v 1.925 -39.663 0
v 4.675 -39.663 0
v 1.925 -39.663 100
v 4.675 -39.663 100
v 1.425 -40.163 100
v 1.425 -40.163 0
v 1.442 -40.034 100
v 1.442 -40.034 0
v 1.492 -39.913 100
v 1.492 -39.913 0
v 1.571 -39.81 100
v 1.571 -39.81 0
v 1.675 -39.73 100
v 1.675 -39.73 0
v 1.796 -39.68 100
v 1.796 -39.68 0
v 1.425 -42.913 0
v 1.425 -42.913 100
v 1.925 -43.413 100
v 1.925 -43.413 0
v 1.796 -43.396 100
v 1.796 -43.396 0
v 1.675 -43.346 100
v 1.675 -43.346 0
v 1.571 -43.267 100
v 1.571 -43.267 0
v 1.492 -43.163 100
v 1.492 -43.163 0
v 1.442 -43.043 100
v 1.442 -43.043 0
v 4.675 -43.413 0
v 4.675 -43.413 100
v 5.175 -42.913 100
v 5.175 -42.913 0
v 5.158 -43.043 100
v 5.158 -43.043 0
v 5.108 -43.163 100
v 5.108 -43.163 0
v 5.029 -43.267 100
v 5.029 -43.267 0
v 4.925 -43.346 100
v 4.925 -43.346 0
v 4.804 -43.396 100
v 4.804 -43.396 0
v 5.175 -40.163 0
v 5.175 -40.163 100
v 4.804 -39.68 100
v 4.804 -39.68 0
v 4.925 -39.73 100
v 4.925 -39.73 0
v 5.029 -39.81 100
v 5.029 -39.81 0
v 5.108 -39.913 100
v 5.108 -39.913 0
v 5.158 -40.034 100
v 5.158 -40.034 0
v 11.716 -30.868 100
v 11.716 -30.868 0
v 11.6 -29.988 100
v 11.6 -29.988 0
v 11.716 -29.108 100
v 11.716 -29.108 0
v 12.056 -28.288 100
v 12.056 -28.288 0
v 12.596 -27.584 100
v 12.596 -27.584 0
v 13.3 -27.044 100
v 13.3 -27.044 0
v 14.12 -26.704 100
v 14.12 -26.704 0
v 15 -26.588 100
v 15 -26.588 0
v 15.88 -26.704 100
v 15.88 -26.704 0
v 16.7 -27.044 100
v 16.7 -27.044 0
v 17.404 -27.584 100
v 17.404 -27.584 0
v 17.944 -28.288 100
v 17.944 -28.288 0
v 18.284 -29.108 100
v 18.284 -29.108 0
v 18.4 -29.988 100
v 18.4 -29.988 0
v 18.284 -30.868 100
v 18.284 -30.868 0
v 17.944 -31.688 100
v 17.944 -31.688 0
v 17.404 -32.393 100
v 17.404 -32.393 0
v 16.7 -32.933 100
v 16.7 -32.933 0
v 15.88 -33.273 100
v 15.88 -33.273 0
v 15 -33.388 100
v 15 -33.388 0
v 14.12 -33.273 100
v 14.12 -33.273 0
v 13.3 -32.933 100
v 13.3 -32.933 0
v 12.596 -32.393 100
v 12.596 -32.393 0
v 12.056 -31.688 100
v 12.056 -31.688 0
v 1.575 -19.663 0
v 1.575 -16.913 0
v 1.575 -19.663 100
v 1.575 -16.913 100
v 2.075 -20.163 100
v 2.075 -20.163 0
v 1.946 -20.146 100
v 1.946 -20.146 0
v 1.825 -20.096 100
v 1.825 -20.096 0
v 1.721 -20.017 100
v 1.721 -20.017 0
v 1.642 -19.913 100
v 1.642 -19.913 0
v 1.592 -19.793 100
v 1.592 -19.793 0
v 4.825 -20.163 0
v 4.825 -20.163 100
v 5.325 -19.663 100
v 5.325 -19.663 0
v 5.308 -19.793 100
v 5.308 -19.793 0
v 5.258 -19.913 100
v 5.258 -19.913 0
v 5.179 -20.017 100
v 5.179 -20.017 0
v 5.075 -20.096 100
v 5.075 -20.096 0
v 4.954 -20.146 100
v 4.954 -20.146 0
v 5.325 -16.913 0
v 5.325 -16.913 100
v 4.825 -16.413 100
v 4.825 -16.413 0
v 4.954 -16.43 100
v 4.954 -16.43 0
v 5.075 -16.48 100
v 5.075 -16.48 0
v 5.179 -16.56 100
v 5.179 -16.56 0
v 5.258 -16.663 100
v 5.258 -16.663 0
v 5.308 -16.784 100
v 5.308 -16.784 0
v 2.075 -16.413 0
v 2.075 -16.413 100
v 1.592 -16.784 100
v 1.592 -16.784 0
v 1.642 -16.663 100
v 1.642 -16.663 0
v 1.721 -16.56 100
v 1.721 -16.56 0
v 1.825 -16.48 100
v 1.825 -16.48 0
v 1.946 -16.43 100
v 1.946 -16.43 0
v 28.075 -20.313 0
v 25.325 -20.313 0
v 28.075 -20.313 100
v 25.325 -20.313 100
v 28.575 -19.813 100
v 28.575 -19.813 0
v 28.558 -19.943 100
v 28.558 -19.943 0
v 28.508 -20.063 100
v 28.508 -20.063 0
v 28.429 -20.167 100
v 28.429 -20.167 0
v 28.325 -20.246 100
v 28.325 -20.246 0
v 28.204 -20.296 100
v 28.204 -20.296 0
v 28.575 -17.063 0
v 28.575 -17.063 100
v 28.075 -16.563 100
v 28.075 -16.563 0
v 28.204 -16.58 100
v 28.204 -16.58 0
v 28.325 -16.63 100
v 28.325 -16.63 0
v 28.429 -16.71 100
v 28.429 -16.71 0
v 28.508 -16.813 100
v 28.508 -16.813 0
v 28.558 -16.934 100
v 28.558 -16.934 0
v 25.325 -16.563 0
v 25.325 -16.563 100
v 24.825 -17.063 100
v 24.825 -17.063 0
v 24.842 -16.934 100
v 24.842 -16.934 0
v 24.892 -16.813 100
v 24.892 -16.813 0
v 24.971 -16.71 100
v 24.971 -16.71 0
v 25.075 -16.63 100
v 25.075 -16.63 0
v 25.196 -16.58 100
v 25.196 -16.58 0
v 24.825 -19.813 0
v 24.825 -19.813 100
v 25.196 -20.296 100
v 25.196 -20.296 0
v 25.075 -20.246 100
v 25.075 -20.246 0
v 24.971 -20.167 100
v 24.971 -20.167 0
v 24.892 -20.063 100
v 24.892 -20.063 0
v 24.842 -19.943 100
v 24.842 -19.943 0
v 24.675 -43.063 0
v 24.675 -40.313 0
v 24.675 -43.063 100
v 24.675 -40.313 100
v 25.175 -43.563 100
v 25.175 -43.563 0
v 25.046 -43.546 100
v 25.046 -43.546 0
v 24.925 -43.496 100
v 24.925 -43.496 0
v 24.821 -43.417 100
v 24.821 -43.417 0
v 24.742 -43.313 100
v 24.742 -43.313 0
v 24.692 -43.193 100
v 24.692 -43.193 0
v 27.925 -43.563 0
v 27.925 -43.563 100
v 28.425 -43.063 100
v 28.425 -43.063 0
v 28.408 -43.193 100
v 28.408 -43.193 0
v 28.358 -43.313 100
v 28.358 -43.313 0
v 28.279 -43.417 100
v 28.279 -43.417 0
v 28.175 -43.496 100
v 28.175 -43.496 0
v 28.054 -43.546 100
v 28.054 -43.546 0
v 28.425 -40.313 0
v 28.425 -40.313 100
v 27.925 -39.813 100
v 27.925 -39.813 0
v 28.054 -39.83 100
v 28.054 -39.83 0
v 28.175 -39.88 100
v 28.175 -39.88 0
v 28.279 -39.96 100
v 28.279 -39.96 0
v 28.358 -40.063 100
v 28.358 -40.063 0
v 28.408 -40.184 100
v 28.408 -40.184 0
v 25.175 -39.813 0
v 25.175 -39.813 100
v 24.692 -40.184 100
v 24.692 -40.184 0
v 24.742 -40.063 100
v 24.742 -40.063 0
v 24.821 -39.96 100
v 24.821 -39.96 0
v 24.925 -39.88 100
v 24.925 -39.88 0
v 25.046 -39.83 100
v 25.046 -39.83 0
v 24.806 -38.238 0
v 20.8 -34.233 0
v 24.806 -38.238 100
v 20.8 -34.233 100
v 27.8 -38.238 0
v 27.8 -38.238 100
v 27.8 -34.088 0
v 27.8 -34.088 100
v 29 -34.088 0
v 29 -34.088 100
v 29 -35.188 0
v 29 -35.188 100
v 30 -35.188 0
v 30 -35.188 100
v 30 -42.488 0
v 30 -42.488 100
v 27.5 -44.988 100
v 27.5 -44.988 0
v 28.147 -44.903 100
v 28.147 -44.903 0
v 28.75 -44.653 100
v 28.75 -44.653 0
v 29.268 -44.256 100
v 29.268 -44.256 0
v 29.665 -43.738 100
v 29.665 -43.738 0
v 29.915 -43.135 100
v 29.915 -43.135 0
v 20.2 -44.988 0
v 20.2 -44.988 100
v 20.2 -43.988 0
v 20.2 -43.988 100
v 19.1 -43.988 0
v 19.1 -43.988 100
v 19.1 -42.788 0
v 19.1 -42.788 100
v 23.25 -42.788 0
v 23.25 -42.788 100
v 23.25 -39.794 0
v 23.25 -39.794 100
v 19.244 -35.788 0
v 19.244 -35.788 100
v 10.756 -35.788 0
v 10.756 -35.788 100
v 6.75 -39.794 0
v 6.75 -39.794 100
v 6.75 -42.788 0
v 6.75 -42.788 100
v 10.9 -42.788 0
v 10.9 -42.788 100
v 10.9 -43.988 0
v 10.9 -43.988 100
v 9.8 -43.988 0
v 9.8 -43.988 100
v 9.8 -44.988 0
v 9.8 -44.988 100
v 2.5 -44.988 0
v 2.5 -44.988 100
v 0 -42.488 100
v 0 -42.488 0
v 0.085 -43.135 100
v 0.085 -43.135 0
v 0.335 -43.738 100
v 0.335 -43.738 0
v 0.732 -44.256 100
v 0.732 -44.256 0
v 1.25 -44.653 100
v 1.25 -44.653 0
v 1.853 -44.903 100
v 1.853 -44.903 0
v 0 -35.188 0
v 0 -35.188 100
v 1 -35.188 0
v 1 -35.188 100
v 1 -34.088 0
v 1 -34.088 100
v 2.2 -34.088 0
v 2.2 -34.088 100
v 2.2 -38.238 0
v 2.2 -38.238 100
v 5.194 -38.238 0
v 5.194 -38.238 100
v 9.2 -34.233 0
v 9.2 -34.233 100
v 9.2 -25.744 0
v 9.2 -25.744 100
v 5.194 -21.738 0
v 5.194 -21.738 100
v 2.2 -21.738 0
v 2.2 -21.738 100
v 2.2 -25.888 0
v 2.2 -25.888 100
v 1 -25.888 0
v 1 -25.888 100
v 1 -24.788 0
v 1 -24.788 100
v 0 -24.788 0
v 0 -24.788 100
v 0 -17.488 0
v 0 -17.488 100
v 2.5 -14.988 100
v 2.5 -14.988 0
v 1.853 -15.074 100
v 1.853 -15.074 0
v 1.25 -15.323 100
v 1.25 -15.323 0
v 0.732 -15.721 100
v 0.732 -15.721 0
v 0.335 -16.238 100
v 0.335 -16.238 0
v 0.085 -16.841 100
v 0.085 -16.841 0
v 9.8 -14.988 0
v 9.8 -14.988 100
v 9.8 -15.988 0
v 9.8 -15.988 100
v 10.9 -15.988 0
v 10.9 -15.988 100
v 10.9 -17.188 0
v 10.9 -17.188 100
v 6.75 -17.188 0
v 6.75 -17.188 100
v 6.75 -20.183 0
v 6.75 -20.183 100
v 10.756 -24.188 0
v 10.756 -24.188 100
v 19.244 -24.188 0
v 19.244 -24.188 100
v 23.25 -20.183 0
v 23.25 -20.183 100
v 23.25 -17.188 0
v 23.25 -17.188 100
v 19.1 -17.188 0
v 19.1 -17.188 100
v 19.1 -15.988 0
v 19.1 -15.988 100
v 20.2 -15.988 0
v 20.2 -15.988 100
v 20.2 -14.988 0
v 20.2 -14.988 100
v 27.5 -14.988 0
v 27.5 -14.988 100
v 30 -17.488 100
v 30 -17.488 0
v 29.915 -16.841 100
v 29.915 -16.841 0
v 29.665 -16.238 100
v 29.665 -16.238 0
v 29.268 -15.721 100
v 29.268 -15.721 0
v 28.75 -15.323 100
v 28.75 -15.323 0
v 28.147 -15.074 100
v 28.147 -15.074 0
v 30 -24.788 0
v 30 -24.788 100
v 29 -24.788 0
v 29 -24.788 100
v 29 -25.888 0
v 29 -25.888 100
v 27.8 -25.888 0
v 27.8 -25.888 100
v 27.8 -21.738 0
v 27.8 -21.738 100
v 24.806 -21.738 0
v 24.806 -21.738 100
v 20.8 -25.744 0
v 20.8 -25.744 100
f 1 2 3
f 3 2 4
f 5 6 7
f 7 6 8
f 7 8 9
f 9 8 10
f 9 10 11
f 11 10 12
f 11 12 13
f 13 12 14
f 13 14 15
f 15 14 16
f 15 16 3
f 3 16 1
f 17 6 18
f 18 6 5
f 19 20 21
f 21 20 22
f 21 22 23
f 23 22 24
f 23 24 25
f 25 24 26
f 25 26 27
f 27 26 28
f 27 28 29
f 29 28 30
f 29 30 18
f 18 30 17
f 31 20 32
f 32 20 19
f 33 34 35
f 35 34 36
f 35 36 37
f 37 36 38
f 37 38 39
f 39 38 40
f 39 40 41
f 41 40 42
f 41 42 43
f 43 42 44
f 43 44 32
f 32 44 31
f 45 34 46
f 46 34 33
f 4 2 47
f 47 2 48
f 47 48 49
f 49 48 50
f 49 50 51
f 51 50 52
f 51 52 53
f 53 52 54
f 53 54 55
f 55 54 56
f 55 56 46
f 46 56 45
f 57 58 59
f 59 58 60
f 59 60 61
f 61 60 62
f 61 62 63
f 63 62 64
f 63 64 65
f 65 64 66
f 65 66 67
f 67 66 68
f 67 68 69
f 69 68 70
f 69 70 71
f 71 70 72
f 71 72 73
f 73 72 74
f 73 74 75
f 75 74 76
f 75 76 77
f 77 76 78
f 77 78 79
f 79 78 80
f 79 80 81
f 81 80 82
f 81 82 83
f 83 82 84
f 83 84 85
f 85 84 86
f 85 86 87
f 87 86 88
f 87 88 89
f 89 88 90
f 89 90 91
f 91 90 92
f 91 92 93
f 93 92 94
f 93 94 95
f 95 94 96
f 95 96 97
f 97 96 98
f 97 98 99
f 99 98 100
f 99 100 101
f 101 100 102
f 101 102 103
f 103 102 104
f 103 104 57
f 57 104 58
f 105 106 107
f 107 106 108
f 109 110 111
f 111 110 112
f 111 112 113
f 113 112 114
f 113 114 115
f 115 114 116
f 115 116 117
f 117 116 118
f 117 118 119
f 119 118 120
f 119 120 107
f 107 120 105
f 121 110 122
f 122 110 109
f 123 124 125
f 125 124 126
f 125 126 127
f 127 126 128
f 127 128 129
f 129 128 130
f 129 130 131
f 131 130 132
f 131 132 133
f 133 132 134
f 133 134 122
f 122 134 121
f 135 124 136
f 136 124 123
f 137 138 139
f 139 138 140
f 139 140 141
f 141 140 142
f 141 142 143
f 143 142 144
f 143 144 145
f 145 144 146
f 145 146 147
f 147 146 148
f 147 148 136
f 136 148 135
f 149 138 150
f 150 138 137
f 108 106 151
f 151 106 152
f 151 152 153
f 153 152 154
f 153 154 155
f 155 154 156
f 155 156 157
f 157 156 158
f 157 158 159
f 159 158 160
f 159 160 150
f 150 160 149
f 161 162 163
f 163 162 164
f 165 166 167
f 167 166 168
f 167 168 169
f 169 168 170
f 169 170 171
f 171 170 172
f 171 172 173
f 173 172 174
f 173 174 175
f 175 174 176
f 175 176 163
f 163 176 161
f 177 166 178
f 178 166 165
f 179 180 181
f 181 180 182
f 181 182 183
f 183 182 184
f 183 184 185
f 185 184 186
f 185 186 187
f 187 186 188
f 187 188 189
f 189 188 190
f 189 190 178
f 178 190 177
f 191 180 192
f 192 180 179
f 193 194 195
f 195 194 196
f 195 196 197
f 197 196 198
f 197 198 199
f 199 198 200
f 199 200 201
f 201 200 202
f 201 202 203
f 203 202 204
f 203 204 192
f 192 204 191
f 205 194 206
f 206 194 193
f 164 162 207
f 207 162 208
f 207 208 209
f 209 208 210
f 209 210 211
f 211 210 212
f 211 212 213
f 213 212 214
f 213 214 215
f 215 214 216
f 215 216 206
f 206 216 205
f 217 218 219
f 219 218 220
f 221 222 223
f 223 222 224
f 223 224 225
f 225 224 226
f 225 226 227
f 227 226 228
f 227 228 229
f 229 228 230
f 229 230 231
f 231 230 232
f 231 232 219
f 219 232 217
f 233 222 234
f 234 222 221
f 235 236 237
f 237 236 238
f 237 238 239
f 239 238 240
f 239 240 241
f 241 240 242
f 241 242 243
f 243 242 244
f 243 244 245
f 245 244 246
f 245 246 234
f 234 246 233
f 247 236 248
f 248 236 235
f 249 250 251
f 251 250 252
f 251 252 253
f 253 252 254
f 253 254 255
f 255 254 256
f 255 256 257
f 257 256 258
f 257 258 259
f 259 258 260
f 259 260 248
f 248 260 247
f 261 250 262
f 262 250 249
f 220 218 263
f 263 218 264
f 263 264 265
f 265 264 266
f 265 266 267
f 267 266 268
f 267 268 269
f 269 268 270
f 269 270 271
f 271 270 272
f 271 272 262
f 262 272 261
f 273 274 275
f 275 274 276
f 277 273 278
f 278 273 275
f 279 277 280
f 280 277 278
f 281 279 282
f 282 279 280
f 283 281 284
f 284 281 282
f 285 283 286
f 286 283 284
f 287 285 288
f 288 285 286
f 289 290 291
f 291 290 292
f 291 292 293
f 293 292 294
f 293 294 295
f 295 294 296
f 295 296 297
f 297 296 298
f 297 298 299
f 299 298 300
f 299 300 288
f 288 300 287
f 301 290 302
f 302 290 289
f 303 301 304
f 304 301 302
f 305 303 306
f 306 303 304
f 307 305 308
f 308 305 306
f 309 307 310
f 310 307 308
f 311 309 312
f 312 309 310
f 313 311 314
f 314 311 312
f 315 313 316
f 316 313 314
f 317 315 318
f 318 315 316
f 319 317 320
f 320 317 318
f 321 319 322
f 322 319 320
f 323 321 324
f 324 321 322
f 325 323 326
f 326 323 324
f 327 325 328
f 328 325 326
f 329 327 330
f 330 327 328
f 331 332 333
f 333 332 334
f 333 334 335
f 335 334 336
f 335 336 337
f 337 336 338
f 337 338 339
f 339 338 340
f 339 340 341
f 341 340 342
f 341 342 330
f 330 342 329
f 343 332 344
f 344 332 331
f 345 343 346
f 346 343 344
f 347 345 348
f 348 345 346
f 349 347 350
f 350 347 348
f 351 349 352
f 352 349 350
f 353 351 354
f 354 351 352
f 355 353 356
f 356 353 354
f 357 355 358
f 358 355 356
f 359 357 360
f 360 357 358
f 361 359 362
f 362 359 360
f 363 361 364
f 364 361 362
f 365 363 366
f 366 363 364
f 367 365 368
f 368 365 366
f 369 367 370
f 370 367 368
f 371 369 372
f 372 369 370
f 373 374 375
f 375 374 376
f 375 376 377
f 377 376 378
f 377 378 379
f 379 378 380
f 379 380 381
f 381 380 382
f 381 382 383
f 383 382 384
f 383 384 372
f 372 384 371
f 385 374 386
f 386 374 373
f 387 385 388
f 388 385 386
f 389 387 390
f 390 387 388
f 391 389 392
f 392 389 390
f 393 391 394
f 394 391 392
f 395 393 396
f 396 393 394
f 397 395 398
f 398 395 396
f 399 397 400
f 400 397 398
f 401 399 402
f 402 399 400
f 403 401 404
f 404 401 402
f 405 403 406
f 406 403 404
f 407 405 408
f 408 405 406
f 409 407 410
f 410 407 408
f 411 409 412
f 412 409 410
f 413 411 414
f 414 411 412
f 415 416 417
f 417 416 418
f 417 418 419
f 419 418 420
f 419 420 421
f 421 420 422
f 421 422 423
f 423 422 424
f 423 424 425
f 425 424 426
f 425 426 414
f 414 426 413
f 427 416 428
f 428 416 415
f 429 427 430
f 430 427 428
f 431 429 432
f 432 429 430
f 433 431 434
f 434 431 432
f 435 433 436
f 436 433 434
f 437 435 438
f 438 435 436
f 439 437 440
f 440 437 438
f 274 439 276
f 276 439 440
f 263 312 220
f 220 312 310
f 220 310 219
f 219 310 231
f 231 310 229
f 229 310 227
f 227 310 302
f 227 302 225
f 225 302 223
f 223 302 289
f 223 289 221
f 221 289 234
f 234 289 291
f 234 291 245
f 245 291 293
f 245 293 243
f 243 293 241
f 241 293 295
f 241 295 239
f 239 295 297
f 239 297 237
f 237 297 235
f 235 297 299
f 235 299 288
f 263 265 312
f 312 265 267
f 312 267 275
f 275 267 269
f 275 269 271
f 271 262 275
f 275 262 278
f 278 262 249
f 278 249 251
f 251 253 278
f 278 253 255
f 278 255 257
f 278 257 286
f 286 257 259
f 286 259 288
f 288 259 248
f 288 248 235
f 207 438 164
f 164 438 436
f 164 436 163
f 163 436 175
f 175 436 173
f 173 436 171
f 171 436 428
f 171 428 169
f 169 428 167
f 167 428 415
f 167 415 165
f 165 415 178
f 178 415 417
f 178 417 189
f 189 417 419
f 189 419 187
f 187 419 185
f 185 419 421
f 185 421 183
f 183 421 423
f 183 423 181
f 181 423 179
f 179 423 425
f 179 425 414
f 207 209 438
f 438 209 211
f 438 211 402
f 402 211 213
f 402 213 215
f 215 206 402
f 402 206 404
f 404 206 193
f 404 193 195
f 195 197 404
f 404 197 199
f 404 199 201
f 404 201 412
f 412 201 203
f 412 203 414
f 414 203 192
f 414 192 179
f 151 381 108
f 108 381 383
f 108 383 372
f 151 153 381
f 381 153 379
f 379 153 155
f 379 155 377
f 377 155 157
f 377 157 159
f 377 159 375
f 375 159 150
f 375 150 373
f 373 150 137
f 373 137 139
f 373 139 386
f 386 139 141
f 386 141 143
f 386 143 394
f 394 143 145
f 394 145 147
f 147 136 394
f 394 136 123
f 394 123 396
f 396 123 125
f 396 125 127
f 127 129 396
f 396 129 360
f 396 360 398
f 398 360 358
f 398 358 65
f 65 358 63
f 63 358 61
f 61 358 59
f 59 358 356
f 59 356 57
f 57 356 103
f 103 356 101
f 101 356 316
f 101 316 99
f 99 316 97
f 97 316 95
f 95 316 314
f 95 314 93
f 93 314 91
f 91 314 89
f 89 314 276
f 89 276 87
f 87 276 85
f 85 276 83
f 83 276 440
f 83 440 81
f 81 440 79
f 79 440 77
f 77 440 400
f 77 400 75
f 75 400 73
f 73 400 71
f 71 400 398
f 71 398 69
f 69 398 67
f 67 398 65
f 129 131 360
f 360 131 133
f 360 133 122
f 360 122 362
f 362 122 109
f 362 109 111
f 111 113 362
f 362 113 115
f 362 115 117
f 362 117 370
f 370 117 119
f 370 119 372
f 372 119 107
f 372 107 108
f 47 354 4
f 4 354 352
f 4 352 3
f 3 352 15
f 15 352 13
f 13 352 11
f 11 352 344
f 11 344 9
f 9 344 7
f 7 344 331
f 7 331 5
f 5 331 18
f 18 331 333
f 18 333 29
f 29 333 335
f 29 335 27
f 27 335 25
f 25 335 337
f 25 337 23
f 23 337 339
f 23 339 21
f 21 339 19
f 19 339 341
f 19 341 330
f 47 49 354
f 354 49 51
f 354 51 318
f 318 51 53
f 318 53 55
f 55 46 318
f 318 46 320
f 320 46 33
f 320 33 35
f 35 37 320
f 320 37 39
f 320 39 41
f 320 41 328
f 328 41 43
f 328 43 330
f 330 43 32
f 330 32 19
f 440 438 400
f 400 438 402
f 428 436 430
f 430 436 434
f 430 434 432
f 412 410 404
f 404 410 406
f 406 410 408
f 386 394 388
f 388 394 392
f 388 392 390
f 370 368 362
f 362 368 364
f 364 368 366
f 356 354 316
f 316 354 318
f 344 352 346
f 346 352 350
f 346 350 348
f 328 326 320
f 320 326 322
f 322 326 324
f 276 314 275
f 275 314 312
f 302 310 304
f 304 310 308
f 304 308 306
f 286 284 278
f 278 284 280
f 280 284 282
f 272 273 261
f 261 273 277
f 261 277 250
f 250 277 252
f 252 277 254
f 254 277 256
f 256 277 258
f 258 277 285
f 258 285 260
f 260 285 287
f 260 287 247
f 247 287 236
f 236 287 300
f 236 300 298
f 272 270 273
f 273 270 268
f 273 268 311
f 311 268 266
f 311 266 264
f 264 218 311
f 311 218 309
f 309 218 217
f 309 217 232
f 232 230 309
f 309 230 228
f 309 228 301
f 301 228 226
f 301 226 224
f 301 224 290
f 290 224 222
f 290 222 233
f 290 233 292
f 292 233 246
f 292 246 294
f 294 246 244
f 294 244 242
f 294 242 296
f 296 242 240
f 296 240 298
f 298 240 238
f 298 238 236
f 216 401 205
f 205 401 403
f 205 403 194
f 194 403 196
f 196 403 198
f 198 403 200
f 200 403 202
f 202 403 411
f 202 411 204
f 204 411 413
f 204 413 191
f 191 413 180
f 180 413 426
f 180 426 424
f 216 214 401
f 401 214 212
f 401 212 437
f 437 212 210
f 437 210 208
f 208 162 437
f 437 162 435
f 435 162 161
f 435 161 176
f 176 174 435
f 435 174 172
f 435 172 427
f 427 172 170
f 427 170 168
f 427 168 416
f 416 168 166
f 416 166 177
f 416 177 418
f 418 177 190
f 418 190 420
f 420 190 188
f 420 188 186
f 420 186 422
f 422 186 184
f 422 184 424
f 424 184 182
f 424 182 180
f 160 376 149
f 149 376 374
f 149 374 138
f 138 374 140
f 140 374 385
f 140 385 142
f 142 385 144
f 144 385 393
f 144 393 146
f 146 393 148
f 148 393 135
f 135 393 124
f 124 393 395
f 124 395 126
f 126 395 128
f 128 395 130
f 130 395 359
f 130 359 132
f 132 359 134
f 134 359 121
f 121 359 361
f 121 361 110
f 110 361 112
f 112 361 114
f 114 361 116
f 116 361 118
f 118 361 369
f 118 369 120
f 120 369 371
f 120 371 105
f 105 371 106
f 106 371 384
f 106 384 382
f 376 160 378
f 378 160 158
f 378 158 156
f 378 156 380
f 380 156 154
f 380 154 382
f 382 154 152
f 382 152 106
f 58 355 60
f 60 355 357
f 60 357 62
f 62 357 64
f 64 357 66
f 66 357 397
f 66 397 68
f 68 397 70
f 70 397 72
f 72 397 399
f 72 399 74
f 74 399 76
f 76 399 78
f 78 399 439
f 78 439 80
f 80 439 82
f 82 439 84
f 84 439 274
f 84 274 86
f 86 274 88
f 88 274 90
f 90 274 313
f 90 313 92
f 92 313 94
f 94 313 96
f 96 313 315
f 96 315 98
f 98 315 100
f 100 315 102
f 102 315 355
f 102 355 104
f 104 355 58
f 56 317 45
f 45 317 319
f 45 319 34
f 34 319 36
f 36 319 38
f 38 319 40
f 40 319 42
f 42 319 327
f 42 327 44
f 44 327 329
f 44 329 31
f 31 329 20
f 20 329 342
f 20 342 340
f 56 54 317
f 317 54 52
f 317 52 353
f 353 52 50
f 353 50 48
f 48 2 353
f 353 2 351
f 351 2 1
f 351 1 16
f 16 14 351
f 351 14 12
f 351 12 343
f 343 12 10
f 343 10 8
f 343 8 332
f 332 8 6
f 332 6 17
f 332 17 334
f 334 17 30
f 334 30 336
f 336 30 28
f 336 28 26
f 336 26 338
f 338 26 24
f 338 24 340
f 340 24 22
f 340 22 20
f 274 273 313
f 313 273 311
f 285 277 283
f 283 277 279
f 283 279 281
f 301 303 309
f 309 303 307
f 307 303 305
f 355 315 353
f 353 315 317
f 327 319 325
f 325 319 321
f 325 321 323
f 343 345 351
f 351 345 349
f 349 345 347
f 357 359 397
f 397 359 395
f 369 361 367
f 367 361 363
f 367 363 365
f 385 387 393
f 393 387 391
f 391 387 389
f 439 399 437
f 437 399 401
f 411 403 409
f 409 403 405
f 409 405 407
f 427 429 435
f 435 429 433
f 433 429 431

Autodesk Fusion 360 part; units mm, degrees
sketch "Sketch1" plane through (0, 0, 0) normal (0, 0, 1) x (1, 0, 0)
  circle A0 centre (10, 10) radius 2.5
  line L0 (13.9, 6.1) -> (6.1, 13.9) construction
  line L1 (0, 6.4) -> (0, 1.5)
  line L2 (4.5, 1.8) -> (6.9, 1.8)
  line L3 (3.5808, 4.5) -> (6.1, 7.0192)
  line L4 (4.5, 3.5808) -> (7.0192, 6.1)
  line L5 (0.5, 6.9) -> (0.5, 6.4)
  line L6 (0.5, 6.4) -> (0, 6.4)
  line L7 (6.9, 0) -> (6.4, 0) construction
  line L8 (6.4, 0) -> (6.4, 0.5)
  line L9 (6.4, 0.5) -> (6.9, 0.5)
  arc A1 (0, 1.5) -> (1.5, 0) centre (1.5, 1.5) ccw
  line L10 (1.8, 6.9) -> (0.5, 6.9)
  line L11 (1.8, 6.9) -> (1.8, 6.4)
  line L12 (1.8, 6.4) -> (1.8, 4.5)
  line L13 (3.5808, 4.5) -> (1.8, 4.5)
  line L14 (6.1, 10) -> (6.1, 7.0192)
  line L15 (7.0192, 6.1) -> (10, 6.1)
  line L16 (4.5, 1.8) -> (4.5, 3.5808)
  line L17 (6.9, 0.5) -> (6.9, 1.8)
  line L18 (1.5, 0) -> (6.4, 0)
  line L19 (6.4, 0) -> (6.9, 0)
  line L20 (0, 6.9) -> (0, 6.4)
  line L21 (10, 13.9) -> (10, 6.1) construction
  line L22 (13.9, 10) -> (6.1, 10) construction
  line L23 (20, 6.4) -> (19.5, 6.4)
  line L24 (19.5, 6.4) -> (19.5, 6.9)
  line L25 (19.5, 6.9) -> (18.2, 6.9)
  line L26 (18.2, 4.5) -> (18.2, 6.9)
  line L27 (18.2, 4.5) -> (16.4192, 4.5)
  line L28 (16.4192, 4.5) -> (13.9, 7.0192)
  line L29 (13.9, 7.0192) -> (13.9, 10)
  line L30 (15.5, 3.5808) -> (12.9808, 6.1)
  line L31 (15.5, 3.5808) -> (15.5, 1.8)
  line L32 (13.6, 1.8) -> (15.5, 1.8)
  line L33 (13.1, 1.8) -> (13.6, 1.8)
  line L34 (13.1, 1.8) -> (13.1, 0.5)
  line L35 (13.1, 0.5) -> (13.6, 0.5)
  line L36 (13.6, 0.5) -> (13.6, 0)
  line L37 (10, 6.1) -> (12.9808, 6.1)
  line L38 (13.6, 0) -> (18.5, 0)
  arc A2 (18.5, 0) -> (20, 1.5) centre (18.5, 1.5) ccw
  line L39 (20, 1.5) -> (20, 6.4)
  line L40 (13.6, 20) -> (13.6, 19.5)
  line L41 (13.6, 19.5) -> (13.1, 19.5)
  line L42 (13.1, 19.5) -> (13.1, 18.2)
  line L43 (15.5, 18.2) -> (13.1, 18.2)
  line L44 (15.5, 18.2) -> (15.5, 16.4192)
  line L45 (15.5, 16.4192) -> (12.9808, 13.9)
  line L46 (12.9808, 13.9) -> (10, 13.9)
  line L47 (16.4192, 15.5) -> (13.9, 12.9808)
  line L48 (16.4192, 15.5) -> (18.2, 15.5)
  line L49 (18.2, 13.6) -> (18.2, 15.5)
  line L50 (18.2, 13.1) -> (18.2, 13.6)
  line L51 (18.2, 13.1) -> (19.5, 13.1)
  line L52 (19.5, 13.1) -> (19.5, 13.6)
  line L53 (19.5, 13.6) -> (20, 13.6)
  line L54 (13.9, 10) -> (13.9, 12.9808)
  line L55 (20, 13.6) -> (20, 18.5)
  arc A3 (20, 18.5) -> (18.5, 20) centre (18.5, 18.5) ccw
  line L56 (18.5, 20) -> (13.6, 20)
  line L57 (0, 13.6) -> (0.5, 13.6)
  line L58 (0.5, 13.6) -> (0.5, 13.1)
  line L59 (0.5, 13.1) -> (1.8, 13.1)
  line L60 (1.8, 15.5) -> (1.8, 13.1)
  line L61 (1.8, 15.5) -> (3.5808, 15.5)
  line L62 (3.5808, 15.5) -> (6.1, 12.9808)
  line L63 (6.1, 12.9808) -> (6.1, 10)
  line L64 (4.5, 16.4192) -> (7.0192, 13.9)
  line L65 (4.5, 16.4192) -> (4.5, 18.2)
  line L66 (6.4, 18.2) -> (4.5, 18.2)
  line L67 (6.9, 18.2) -> (6.4, 18.2)
  line L68 (6.9, 18.2) -> (6.9, 19.5)
  line L69 (6.9, 19.5) -> (6.4, 19.5)
  line L70 (6.4, 19.5) -> (6.4, 20)
  line L71 (10, 13.9) -> (7.0192, 13.9)
  line L72 (6.4, 20) -> (1.5, 20)
  arc A4 (1.5, 20) -> (0, 18.5) centre (1.5, 18.5) ccw
  line L73 (0, 18.5) -> (0, 13.6)
  arc A5 (26, 1.5) -> (27.5, 0) centre (27.5, 1.5) ccw
  line L74 (41.5, 3.5808) -> (41.5, 1.8)
  line L75 (39.1, 19.5) -> (39.1, 18.2)
  line L76 (32.4, 20) -> (27.5, 20)
  line L77 (26, 6.9) -> (26, 6.4)
  line L78 (29.5808, 4.5) -> (32.1, 7.0192)
  line L79 (29.5808, 15.5) -> (32.1, 12.9808)
  line L80 (26, 13.6) -> (26.5, 13.6)
  line L81 (39.1, 0.5) -> (39.6, 0.5)
  line L82 (30.5, 16.4192) -> (30.5, 18.2)
  line L83 (27.8, 15.5) -> (27.8, 13.1)
  line L84 (36, 13.9) -> (36, 6.1) construction
  line L85 (32.4, 0) -> (32.4, 0.5)
  line L86 (39.6, 0.5) -> (39.6, 0)
  line L87 (32.1, 10) -> (32.1, 7.0192)
  line L88 (32.4, 19.5) -> (32.4, 20)
  line L89 (39.1, 1.8) -> (39.6, 1.8)
  line L90 (27.8, 6.9) -> (27.8, 6.4)
  line L91 (41.5, 16.4192) -> (38.9808, 13.9)
  line L92 (26.5, 13.1) -> (27.8, 13.1)
  line L93 (26.5, 6.4) -> (26, 6.4)
  line L94 (32.1, 12.9808) -> (32.1, 10)
  line L95 (27.5, 0) -> (32.4, 0)
  line L96 (32.9, 0.5) -> (32.9, 1.8)
  line L97 (32.9, 0) -> (32.4, 0) construction
  line L98 (30.5, 1.8) -> (30.5, 3.5808)
  line L99 (32.9, 19.5) -> (32.4, 19.5)
  line L100 (32.9, 18.2) -> (32.4, 18.2)
  line L101 (41.5, 18.2) -> (39.1, 18.2)
  line L102 (39.6, 19.5) -> (39.1, 19.5)
  line L103 (27.8, 6.9) -> (26.5, 6.9)
  line L104 (27.8, 15.5) -> (29.5808, 15.5)
  line L105 (36, 13.9) -> (33.0192, 13.9)
  line L106 (33.0192, 6.1) -> (36, 6.1)
  line L107 (41.5, 18.2) -> (41.5, 16.4192)
  line L108 (39.9, 10) -> (32.1, 10) construction
  line L109 (39.6, 1.8) -> (41.5, 1.8)
  line L110 (39.9, 6.1) -> (32.1, 13.9) construction
  line L111 (39.6, 0) -> (44.5, 0)
  line L112 (36, 6.1) -> (38.9808, 6.1)
  circle A6 centre (36, 10) radius 2.5
  line L113 (42.4192, 4.5) -> (39.9, 7.0192)
  line L114 (38.9808, 13.9) -> (36, 13.9)
  line L115 (41.5, 3.5808) -> (38.9808, 6.1)
  line L116 (39.9, 7.0192) -> (39.9, 10)
  line L117 (39.9, 10) -> (39.9, 12.9808)
  line L118 (30.5, 16.4192) -> (33.0192, 13.9)
  line L119 (42.4192, 15.5) -> (39.9, 12.9808)
  line L120 (26, 18.5) -> (26, 13.6)
  line L121 (39.6, 20) -> (39.6, 19.5)
  line L122 (32.4, 18.2) -> (30.5, 18.2)
  line L123 (26.5, 6.9) -> (26.5, 6.4)
  line L124 (39.1, 1.8) -> (39.1, 0.5)
  arc A7 (27.5, 20) -> (26, 18.5) centre (27.5, 18.5) ccw
  line L125 (44.5, 20) -> (39.6, 20)
  line L126 (26, 6.4) -> (26, 1.5)
  line L127 (30.5, 3.5808) -> (33.0192, 6.1)
  line L128 (32.4, 0) -> (32.9, 0)
  line L129 (32.4, 0.5) -> (32.9, 0.5)
  line L130 (29.5808, 4.5) -> (27.8, 4.5)
  line L131 (27.8, 6.4) -> (27.8, 4.5)
  line L132 (30.5, 1.8) -> (32.9, 1.8)
  line L133 (26.5, 13.6) -> (26.5, 13.1)
  line L134 (32.9, 18.2) -> (32.9, 19.5)
  line L135 (59.9, 6.1) -> (52.1, 13.9) construction
  circle A8 centre (56, 10) radius 2.5
  line L136 (56, 13.9) -> (56, 6.1) construction
  line L137 (66, 13.6) -> (66, 18.5)
  line L138 (61.5, 16.4192) -> (58.9808, 13.9)
  line L139 (59.9, 10) -> (59.9, 12.9808)
  line L140 (64.2, 13.1) -> (65.5, 13.1)
  line L141 (59.6, 20) -> (59.6, 19.5)
  line L142 (52.1, 12.9808) -> (52.1, 10)
  line L143 (59.1, 19.5) -> (59.1, 18.2)
  line L144 (64.2, 13.1) -> (64.2, 13.6)
  line L145 (64.2, 13.6) -> (64.2, 15.5)
  line L146 (59.9, 10) -> (52.1, 10) construction
  line L147 (65.5, 13.1) -> (65.5, 13.6)
  line L148 (64.5, 20) -> (59.6, 20)
  line L149 (49.5808, 15.5) -> (52.1, 12.9808)
  line L150 (52.4, 19.5) -> (52.4, 20)
  line L151 (62.4192, 15.5) -> (64.2, 15.5)
  line L152 (59.1, 0.5) -> (59.6, 0.5)
  line L153 (65.5, 13.6) -> (66, 13.6)
  line L154 (50.5, 16.4192) -> (53.0192, 13.9)
  line L155 (61.5, 18.2) -> (61.5, 16.4192)
  line L156 (53.0192, 6.1) -> (56, 6.1)
  line L157 (50.5, 16.4192) -> (50.5, 18.2)
  line L158 (52.4, 0.5) -> (52.9, 0.5)
  line L159 (59.1, 1.8) -> (59.6, 1.8)
  line L160 (49.5808, 4.5) -> (52.1, 7.0192)
  line L161 (50.5, 1.8) -> (50.5, 3.5808)
  line L162 (61.5, 3.5808) -> (61.5, 1.8)
  line L163 (56, 13.9) -> (53.0192, 13.9)
  line L164 (52.4, 0) -> (52.4, 0.5)
  line L165 (50.5, 3.5808) -> (53.0192, 6.1)
  line L166 (66, 1.5) -> (66, 6.4)
  line L167 (59.6, 1.8) -> (61.5, 1.8)
  arc A9 (66, 18.5) -> (64.5, 20) centre (64.5, 18.5) ccw
  line L168 (52.1, 10) -> (52.1, 7.0192)
  line L169 (64.2, 4.5) -> (62.4192, 4.5)
  line L170 (59.6, 19.5) -> (59.1, 19.5)
  line L171 (61.5, 18.2) -> (59.1, 18.2)
  line L172 (61.5, 3.5808) -> (58.9808, 6.1)
  line L173 (52.9, 0) -> (52.4, 0) construction
  line L174 (59.9, 7.0192) -> (59.9, 10)
  line L175 (52.4, 18.2) -> (50.5, 18.2)
  line L176 (59.6, 0.5) -> (59.6, 0)
  line L177 (52.9, 18.2) -> (52.4, 18.2)
  line L178 (66, 6.4) -> (65.5, 6.4)
  line L179 (56, 6.1) -> (58.9808, 6.1)
  line L180 (52.9, 18.2) -> (52.9, 19.5)
  line L181 (59.6, 0) -> (64.5, 0)
  line L182 (62.4192, 4.5) -> (59.9, 7.0192)
  arc A10 (64.5, 0) -> (66, 1.5) centre (64.5, 1.5) ccw
  line L183 (50.5, 1.8) -> (52.9, 1.8)
  line L184 (52.4, 20) -> (47.5, 20)
  line L185 (64.2, 4.5) -> (64.2, 6.9)
  line L186 (65.5, 6.4) -> (65.5, 6.9)
  line L187 (52.4, 0) -> (52.9, 0)
  line L188 (52.9, 19.5) -> (52.4, 19.5)
  line L189 (65.5, 6.9) -> (64.2, 6.9)
  line L190 (59.1, 1.8) -> (59.1, 0.5)
  line L191 (47.5, 0) -> (52.4, 0)
  line L192 (58.9808, 13.9) -> (56, 13.9)
  line L193 (62.4192, 15.5) -> (59.9, 12.9808)
  line L194 (52.9, 0.5) -> (52.9, 1.8)
  line L195 (44.5, 20) -> (47.5, 20)
  line L196 (44.5, 0) -> (47.5, 0)
  line L197 (41.5, 18.2) -> (42.8, 18.2) construction
  line L198 (42.8, 18.2) -> (49.2, 18.2)
  line L199 (49.2, 1.8) -> (42.8, 1.8)
  line L200 (42.4192, 15.5) -> (42.8, 15.8808)
  line L201 (49.5808, 15.5) -> (49.2, 15.8808)
  line L202 (49.5808, 4.5) -> (49.2, 4.1192)
  line L203 (42.4192, 4.5) -> (42.8, 4.1192)
  line L204 (42.8, 15.8808) -> (42.8, 18.2)
  line L205 (49.2, 18.2) -> (49.2, 15.8808)
  line L206 (49.2, 4.1192) -> (49.2, 1.8)
  line L207 (42.8, 1.8) -> (42.8, 4.1192)
  arc A11 (2.5, -14.9884) -> (0, -17.4884) centre (2.5, -17.4884) ccw
  circle A12 centre (15, -29.9884) radius 3.4
  line L208 (10.9, -15.9884) -> (10.9, -17.1884)
  line L209 (19.2444, -24.1884) -> (10.7556, -24.1884)
  line L210 (9.2, -25.744) -> (9.2, -34.2327)
  line L211 (10.7556, -35.7884) -> (19.2444, -35.7884)
  line L212 (20.8, -34.2327) -> (20.8, -25.744)
  line L213 (1, -25.8884) -> (2.2, -25.8884)
  line L214 (0, -24.7884) -> (0, -21.7384)
  line L215 (0, -24.7884) -> (1, -24.7884)
  line L216 (1, -25.8884) -> (1, -24.7884)
  line L217 (2.2, -25.8884) -> (2.2, -24.7884)
  line L218 (2.2, -24.7884) -> (2.2, -21.7384)
  line L219 (2.5, -14.9884) -> (9.8, -14.9884)
  line L220 (6.75, -17.1884) -> (10.9, -17.1884)
  line L221 (9.8, -15.9884) -> (10.9, -15.9884)
  line L222 (9.8, -15.9884) -> (9.8, -14.9884)
  line L223 (2.2, -21.7384) -> (5.1944, -21.7384)
  line L224 (6.75, -20.1827) -> (6.75, -17.1884)
  line L225 (0, -17.4884) -> (0, -21.7384)
  line L226 (10.7556, -24.1884) -> (6.75, -20.1827)
  line L227 (9.2, -25.744) -> (5.1944, -21.7384)
  line L228 (4.825, -20.1634) -> (2.075, -20.1634)
  line L229 (1.575, -19.6634) -> (1.575, -16.9134)
  line L230 (2.075, -16.4134) -> (4.825, -16.4134)
  line L231 (5.325, -16.9134) -> (5.325, -19.6634)
  arc A13 (2.075, -16.4134) -> (1.575, -16.9134) centre (2.075, -16.9134) ccw
  arc A14 (5.325, -16.9134) -> (4.825, -16.4134) centre (4.825, -16.9134) ccw
  arc A15 (4.825, -20.1634) -> (5.325, -19.6634) centre (4.825, -19.6634) ccw
  arc A16 (1.575, -19.6634) -> (2.075, -20.1634) centre (2.075, -19.6634) ccw
  line L232 (2.2, -38.2384) -> (2.2, -34.0884)
  line L233 (1, -34.0884) -> (2.2, -34.0884)
  line L234 (1, -35.1884) -> (1, -34.0884)
  line L235 (1, -35.1884) -> (0, -35.1884)
  line L236 (0, -42.4884) -> (0, -35.1884)
  arc A17 (0, -42.4884) -> (2.5, -44.9884) centre (2.5, -42.4884) ccw
  line L237 (2.5, -44.9884) -> (6.75, -44.9884)
  line L238 (9.8, -44.9884) -> (6.75, -44.9884)
  line L239 (9.8, -44.9884) -> (9.8, -43.9884)
  line L240 (10.9, -43.9884) -> (9.8, -43.9884)
  line L241 (10.9, -43.9884) -> (10.9, -42.7884)
  line L242 (10.9, -42.7884) -> (9.8, -42.7884)
  line L243 (9.8, -42.7884) -> (6.75, -42.7884)
  line L244 (6.75, -42.7884) -> (6.75, -39.794)
  line L245 (10.7556, -35.7884) -> (6.75, -39.794)
  line L246 (9.2, -34.2327) -> (5.1944, -38.2384)
  line L247 (5.1944, -38.2384) -> (2.2, -38.2384)
  arc A18 (1.425, -42.9134) -> (1.925, -43.4134) centre (1.925, -42.9134) ccw
  line L248 (1.425, -42.9134) -> (1.425, -40.1634)
  arc A19 (1.925, -39.6634) -> (1.425, -40.1634) centre (1.925, -40.1634) ccw
  line L249 (1.925, -39.6634) -> (4.675, -39.6634)
  arc A20 (5.175, -40.1634) -> (4.675, -39.6634) centre (4.675, -40.1634) ccw
  line L250 (5.175, -40.1634) -> (5.175, -42.9134)
  arc A21 (4.675, -43.4134) -> (5.175, -42.9134) centre (4.675, -42.9134) ccw
  line L251 (4.675, -43.4134) -> (1.925, -43.4134)
  line L252 (23.25, -42.7884) -> (19.1, -42.7884)
  line L253 (19.1, -43.9884) -> (19.1, -42.7884)
  line L254 (20.2, -43.9884) -> (19.1, -43.9884)
  line L255 (20.2, -43.9884) -> (20.2, -44.9884)
  line L256 (27.5, -44.9884) -> (20.2, -44.9884)
  arc A22 (27.5, -44.9884) -> (30, -42.4884) centre (27.5, -42.4884) ccw
  line L257 (30, -42.4884) -> (30, -38.2384)
  line L258 (30, -35.1884) -> (30, -38.2384)
  line L259 (30, -35.1884) -> (29, -35.1884)
  line L260 (29, -34.0884) -> (29, -35.1884)
  line L261 (29, -34.0884) -> (27.8, -34.0884)
  line L262 (27.8, -34.0884) -> (27.8, -35.1884)
  line L263 (27.8, -35.1884) -> (27.8, -38.2384)
  line L264 (27.8, -38.2384) -> (24.8056, -38.2384)
  line L265 (20.8, -34.2327) -> (24.8056, -38.2384)
  line L266 (19.2444, -35.7884) -> (23.25, -39.794)
  line L267 (23.25, -39.794) -> (23.25, -42.7884)
  arc A23 (27.925, -43.5634) -> (28.425, -43.0634) centre (27.925, -43.0634) ccw
  line L268 (27.925, -43.5634) -> (25.175, -43.5634)
  arc A24 (24.675, -43.0634) -> (25.175, -43.5634) centre (25.175, -43.0634) ccw
  line L269 (24.675, -43.0634) -> (24.675, -40.3134)
  arc A25 (25.175, -39.8134) -> (24.675, -40.3134) centre (25.175, -40.3134) ccw
  line L270 (25.175, -39.8134) -> (27.925, -39.8134)
  arc A26 (28.425, -40.3134) -> (27.925, -39.8134) centre (27.925, -40.3134) ccw
  line L271 (28.425, -40.3134) -> (28.425, -43.0634)
  line L272 (27.8, -21.7384) -> (27.8, -25.8884)
  line L273 (29, -25.8884) -> (27.8, -25.8884)
  line L274 (29, -24.7884) -> (29, -25.8884)
  line L275 (29, -24.7884) -> (30, -24.7884)
  line L276 (30, -17.4884) -> (30, -24.7884)
  arc A27 (30, -17.4884) -> (27.5, -14.9884) centre (27.5, -17.4884) ccw
  line L277 (27.5, -14.9884) -> (23.25, -14.9884)
  line L278 (20.2, -14.9884) -> (23.25, -14.9884)
  line L279 (20.2, -14.9884) -> (20.2, -15.9884)
  line L280 (19.1, -15.9884) -> (20.2, -15.9884)
  line L281 (19.1, -15.9884) -> (19.1, -17.1884)
  line L282 (19.1, -17.1884) -> (20.2, -17.1884)
  line L283 (20.2, -17.1884) -> (23.25, -17.1884)
  line L284 (23.25, -17.1884) -> (23.25, -20.1827)
  line L285 (19.2444, -24.1884) -> (23.25, -20.1827)
  line L286 (20.8, -25.744) -> (24.8056, -21.7384)
  line L287 (24.8056, -21.7384) -> (27.8, -21.7384)
  arc A28 (28.575, -17.0634) -> (28.075, -16.5634) centre (28.075, -17.0634) ccw
  line L288 (28.575, -17.0634) -> (28.575, -19.8134)
  arc A29 (28.075, -20.3134) -> (28.575, -19.8134) centre (28.075, -19.8134) ccw
  line L289 (28.075, -20.3134) -> (25.325, -20.3134)
  arc A30 (24.825, -19.8134) -> (25.325, -20.3134) centre (25.325, -19.8134) ccw
  line L290 (24.825, -19.8134) -> (24.825, -17.0634)
  arc A31 (25.325, -16.5634) -> (24.825, -17.0634) centre (25.325, -17.0634) ccw
  line L291 (25.325, -16.5634) -> (28.075, -16.5634)
  circle A32 centre (55, -29.9884) radius 3.4
  line L292 (59.1, -15.9884) -> (60.2, -15.9884)
  line L293 (59.1, -43.9884) -> (59.1, -42.7884)
  line L294 (50.9, -43.9884) -> (50.9, -42.7884)
  line L295 (50.9, -42.7884) -> (49.8, -42.7884)
  line L296 (49.8, -44.9884) -> (49.8, -43.9884)
  line L297 (60.8, -34.2327) -> (60.8, -25.744)
  line L298 (49.8, -15.9884) -> (49.8, -14.9884)
  line L299 (50.9, -15.9884) -> (50.9, -17.1884)
  line L300 (60.2, -17.1884) -> (63.25, -17.1884)
  line L301 (50.9, -43.9884) -> (49.8, -43.9884)
  line L302 (50.7556, -35.7884) -> (59.2444, -35.7884)
  line L303 (59.2444, -24.1884) -> (63.25, -20.1827)
  line L304 (59.1, -15.9884) -> (59.1, -17.1884)
  line L305 (59.2444, -35.7884) -> (63.25, -39.794)
  line L306 (60.2, -43.9884) -> (59.1, -43.9884)
  line L307 (49.8, -15.9884) -> (50.9, -15.9884)
  line L308 (59.1, -17.1884) -> (60.2, -17.1884)
  line L309 (60.2, -14.9884) -> (60.2, -15.9884)
  line L310 (60.2, -43.9884) -> (60.2, -44.9884)
  line L311 (59.2444, -24.1884) -> (50.7556, -24.1884)
  line L312 (63.25, -42.7884) -> (59.1, -42.7884)
  arc A33 (41.575, -19.6634) -> (42.075, -20.1634) centre (42.075, -19.6634) ccw
  line L313 (40, -17.4884) -> (40, -21.7384)
  line L314 (42.2, -24.7884) -> (42.2, -21.7384)
  line L315 (40, -24.7884) -> (41, -24.7884)
  line L316 (67.5, -44.9884) -> (60.2, -44.9884)
  line L317 (41, -25.8884) -> (42.2, -25.8884)
  arc A34 (42.075, -16.4134) -> (41.575, -16.9134) centre (42.075, -16.9134) ccw
  line L318 (44.825, -20.1634) -> (42.075, -20.1634)
  line L319 (42.2, -25.8884) -> (42.2, -24.7884)
  arc A35 (45.325, -16.9134) -> (44.825, -16.4134) centre (44.825, -16.9134) ccw
  line L320 (60.8, -34.2327) -> (64.8056, -38.2384)
  arc A36 (42.5, -14.9884) -> (40, -17.4884) centre (42.5, -17.4884) ccw
  line L321 (40, -24.7884) -> (40, -21.7384)
  line L322 (60.8, -25.744) -> (64.8056, -21.7384)
  line L323 (45.325, -16.9134) -> (45.325, -19.6634)
  line L324 (60.2, -14.9884) -> (63.25, -14.9884)
  line L325 (42.5, -14.9884) -> (49.8, -14.9884)
  line L326 (50.7556, -24.1884) -> (46.75, -20.1827)
  line L327 (41.575, -19.6634) -> (41.575, -16.9134)
  line L328 (49.8, -42.7884) -> (46.75, -42.7884)
  line L329 (46.75, -17.1884) -> (50.9, -17.1884)
  line L330 (49.2, -25.744) -> (45.1944, -21.7384)
  line L331 (46.75, -20.1827) -> (46.75, -17.1884)
  line L332 (49.8, -44.9884) -> (46.75, -44.9884)
  line L333 (50.7556, -35.7884) -> (46.75, -39.794)
  arc A37 (44.825, -20.1634) -> (45.325, -19.6634) centre (44.825, -19.6634) ccw
  line L334 (42.075, -16.4134) -> (44.825, -16.4134)
  line L335 (63.25, -39.794) -> (63.25, -42.7884)
  line L336 (41, -25.8884) -> (41, -24.7884)
  line L337 (49.2, -25.744) -> (49.2, -34.2327)
  line L338 (42.2, -21.7384) -> (45.1944, -21.7384)
  line L339 (42.2, -38.2384) -> (42.2, -34.0884)
  line L340 (41.425, -42.9134) -> (41.425, -40.1634)
  arc A38 (45.175, -40.1634) -> (44.675, -39.6634) centre (44.675, -40.1634) ccw
  arc A39 (41.425, -42.9134) -> (41.925, -43.4134) centre (41.925, -42.9134) ccw
  line L341 (41, -35.1884) -> (40, -35.1884)
  arc A40 (41.925, -39.6634) -> (41.425, -40.1634) centre (41.925, -40.1634) ccw
  line L342 (41.925, -39.6634) -> (44.675, -39.6634)
  line L343 (45.175, -40.1634) -> (45.175, -42.9134)
  line L344 (49.2, -34.2327) -> (45.1944, -38.2384)
  line L345 (67.5, -14.9884) -> (63.25, -14.9884)
  arc A41 (44.675, -43.4134) -> (45.175, -42.9134) centre (44.675, -42.9134) ccw
  arc A42 (40, -42.4884) -> (42.5, -44.9884) centre (42.5, -42.4884) ccw
  line L346 (41, -35.1884) -> (41, -34.0884)
  line L347 (41, -34.0884) -> (42.2, -34.0884)
  line L348 (42.5, -44.9884) -> (46.75, -44.9884)
  line L349 (63.25, -17.1884) -> (63.25, -20.1827)
  line L350 (40, -42.4884) -> (40, -35.1884)
  line L351 (46.75, -42.7884) -> (46.75, -39.794)
  line L352 (45.1944, -38.2384) -> (42.2, -38.2384)
  line L353 (44.675, -43.4134) -> (41.925, -43.4134)
  line L354 (90.2, -43.9884) -> (89.1, -43.9884)
  arc A43 (95.175, -39.8134) -> (94.675, -40.3134) centre (95.175, -40.3134) ccw
  circle A44 centre (85, -29.9884) radius 3.4
  arc A45 (98.425, -40.3134) -> (97.925, -39.8134) centre (97.925, -40.3134) ccw
  line L355 (97.925, -43.5634) -> (95.175, -43.5634)
  line L356 (79.8, -44.9884) -> (79.8, -43.9884)
  line L357 (97.8, -38.2384) -> (94.8056, -38.2384)
  line L358 (100, -17.4884) -> (100, -24.7884)
  line L359 (90.2, -14.9884) -> (93.25, -14.9884)
  line L360 (89.1, -15.9884) -> (89.1, -17.1884)
  line L361 (76.75, -42.7884) -> (76.75, -39.794)
  line L362 (97.8, -34.0884) -> (97.8, -35.1884)
  arc A46 (97.5, -44.9884) -> (100, -42.4884) centre (97.5, -42.4884) ccw
  line L363 (80.9, -43.9884) -> (80.9, -42.7884)
  line L364 (89.1, -43.9884) -> (89.1, -42.7884)
  line L365 (94.675, -43.0634) -> (94.675, -40.3134)
  line L366 (95.175, -39.8134) -> (97.925, -39.8134)
  line L367 (80.9, -42.7884) -> (79.8, -42.7884)
  line L368 (93.25, -39.794) -> (93.25, -42.7884)
  line L369 (98.425, -40.3134) -> (98.425, -43.0634)
  line L370 (90.2, -43.9884) -> (90.2, -44.9884)
  line L371 (100, -42.4884) -> (100, -38.2384)
  line L372 (100, -35.1884) -> (100, -38.2384)
  line L373 (100, -35.1884) -> (99, -35.1884)
  line L374 (90.8, -34.2327) -> (94.8056, -38.2384)
  line L375 (97.5, -44.9884) -> (90.2, -44.9884)
  line L376 (99, -34.0884) -> (99, -35.1884)
  arc A47 (95.325, -16.5634) -> (94.825, -17.0634) centre (95.325, -17.0634) ccw
  line L377 (90.8, -34.2327) -> (90.8, -25.744)
  line L378 (80.7556, -35.7884) -> (76.75, -39.794)
  line L379 (80.7556, -24.1884) -> (76.75, -20.1827)
  arc A48 (98.075, -20.3134) -> (98.575, -19.8134) centre (98.075, -19.8134) ccw
  line L380 (98.075, -20.3134) -> (95.325, -20.3134)
  line L381 (79.2, -25.744) -> (75.1944, -21.7384)
  line L382 (89.2444, -24.1884) -> (80.7556, -24.1884)
  line L383 (79.8, -42.7884) -> (76.75, -42.7884)
  line L384 (89.1, -17.1884) -> (90.2, -17.1884)
  line L385 (90.2, -17.1884) -> (93.25, -17.1884)
  line L386 (72.5, -14.9884) -> (79.8, -14.9884)
  line L387 (79.2, -34.2327) -> (75.1944, -38.2384)
  line L388 (97.8, -21.7384) -> (97.8, -25.8884)
  line L389 (99, -25.8884) -> (97.8, -25.8884)
  line L390 (94.825, -19.8134) -> (94.825, -17.0634)
  line L391 (79.8, -44.9884) -> (76.75, -44.9884)
  line L392 (90.8, -25.744) -> (94.8056, -21.7384)
  line L393 (79.8, -15.9884) -> (80.9, -15.9884)
  arc A49 (100, -17.4884) -> (97.5, -14.9884) centre (97.5, -17.4884) ccw
  line L394 (89.1, -15.9884) -> (90.2, -15.9884)
  line L395 (79.2, -25.744) -> (79.2, -34.2327)
  line L396 (72.5, -44.9884) -> (76.75, -44.9884)
  line L397 (93.25, -17.1884) -> (93.25, -20.1827)
  line L398 (80.9, -15.9884) -> (80.9, -17.1884)
  line L399 (79.8, -15.9884) -> (79.8, -14.9884)
  line L400 (99, -24.7884) -> (100, -24.7884)
  line L401 (94.8056, -21.7384) -> (97.8, -21.7384)
  line L402 (95.325, -16.5634) -> (98.075, -16.5634)
  line L403 (90.2, -14.9884) -> (90.2, -15.9884)
  arc A50 (94.825, -19.8134) -> (95.325, -20.3134) centre (95.325, -19.8134) ccw
  line L404 (98.575, -17.0634) -> (98.575, -19.8134)
  line L405 (89.2444, -24.1884) -> (93.25, -20.1827)
  line L406 (76.75, -17.1884) -> (80.9, -17.1884)
  arc A51 (98.575, -17.0634) -> (98.075, -16.5634) centre (98.075, -17.0634) ccw
  line L407 (97.5, -14.9884) -> (93.25, -14.9884)
  line L408 (99, -24.7884) -> (99, -25.8884)
  line L409 (80.7556, -35.7884) -> (89.2444, -35.7884)
  line L410 (97.8, -35.1884) -> (97.8, -38.2384)
  arc A52 (94.675, -43.0634) -> (95.175, -43.5634) centre (95.175, -43.0634) ccw
  line L411 (89.2444, -35.7884) -> (93.25, -39.794)
  arc A53 (97.925, -43.5634) -> (98.425, -43.0634) centre (97.925, -43.0634) ccw
  line L412 (93.25, -42.7884) -> (89.1, -42.7884)
  line L413 (80.9, -43.9884) -> (79.8, -43.9884)
  line L414 (99, -34.0884) -> (97.8, -34.0884)
  line L415 (76.75, -20.1827) -> (76.75, -17.1884)
  line L416 (67.5, -14.9884) -> (72.5, -14.9884)
  line L417 (75.1944, -21.7384) -> (74.75, -21.294)
  line L418 (64.8056, -21.7384) -> (65.25, -21.294)
  line L419 (65.25, -17.1884) -> (74.75, -17.1884)
  line L420 (65.25, -17.1884) -> (65.25, -21.294)
  line L421 (74.75, -17.1884) -> (74.75, -21.294)
  line L422 (65.25, -42.7884) -> (65.25, -38.6827)
  line L423 (67.5, -44.9884) -> (72.5, -44.9884)
  line L424 (74.75, -42.7884) -> (74.75, -38.6827)
  line L425 (74.75, -42.7884) -> (65.25, -42.7884)
  line L426 (64.8056, -38.2384) -> (65.25, -38.6827)
  line L427 (75.1944, -38.2384) -> (74.75, -38.6827)
  point P0 (10, 10)
  point P1 (36, 10)
  point P2 (56, 10)
  point P3 (0, -14.9884)
  point P4 (30, -14.9884)
  point P5 (0, -44.9884)
  point P6 (15, -29.9884)
  point P7 (15, -29.9884)
  point P8 (15, -29.9884)
  point P9 (15, -29.9884)
  point P10 (15, -29.9884)
  point P11 (15, -29.9884)
  point P12 (15, -29.9884)
  point P13 (1.575, -20.1634)
  point P14 (1.575, -16.4134)
  point P15 (5.325, -16.4134)
  point P16 (3.45, -18.2884)
  point P17 (45.325, -16.4134)
  point P18 (43.45, -18.2884)
  point P19 (55, -29.9884)
  point P20 (41.575, -20.1634)
  point P21 (41.575, -16.4134)
  point P22 (55, -29.9884)
  point P23 (55, -29.9884)
  point P24 (55, -29.9884)
  point P25 (40, -44.9884)
  point P26 (40, -14.9884)
  point P27 (70, -14.9884)
  point P28 (55, -29.9884)
  point P29 (55, -29.9884)
  point P30 (55, -29.9884)
  point P31 (85, -29.9884)
  point P32 (73.45, -18.2884)
  point P33 (85, -29.9884)
  point P34 (71.575, -20.1634)
  point P35 (75.325, -16.4134)
  point P36 (70, -44.9884)
  point P37 (70, -14.9884)
  point P38 (100, -14.9884)
  point P39 (85, -29.9884)
  point P40 (85, -29.9884)
  point P41 (71.575, -16.4134)
  point P42 (85, -29.9884)
  point P43 (85, -29.9884)
  point P44 (85, -29.9884)
  dimension "d3" = 5
  dimension "d6" = 6.9
  dimension "d7" = 6.9
  dimension "d14" = 6.4
  dimension "d22" = 0.5
  dimension "d23" = 0.5
  dimension "d24" = 0.5
  dimension "d25" = 0.5
  dimension "d26" = 1.5
  dimension "d28" = 360
  dimension "d30" = 360
  dimension "d31" = 5
  dimension "d32" = 0.5
  dimension "d33" = 0.5
  dimension "d34" = 0.5
  dimension "d35" = 0.5
  dimension "d36" = 1.5
  dimension "d39" = 5
  dimension "d42" = 0.5
  dimension "d43" = 0.5
  dimension "d45" = 1.3
  dimension "d47" = 6.4
  dimension "d73" = 30
  dimension "d74" = 30
  dimension "d75" = 2.5
  dimension "d76" = 6.8
  dimension "d90" = 3.75
  dimension "d91" = 3.75
  dimension "d92" = 0.5
  dimension "d94" = 360
  dimension "d96" = 360
  dimension "d97" = 30
  dimension "d98" = 30
  dimension "d99" = 2.5
  dimension "d100" = 6.8
  dimension "d101" = 2.2
  dimension "d102" = 3.75
  dimension "d103" = 3.75
  dimension "d104" = 0.5
  dimension "d107" = 30
  dimension "d108" = 30
  dimension "d110" = 6.8
  dimension "d111" = 2.2
  dimension "d112" = 3.75
  dimension "d113" = 3.75
  dimension "d115" = 2
  dimension "d116" = 2
  dimension "d117" = 2
  dimension "d118" = 2
extrude "Extrude1" add sketch "Sketch1" along normal blind 100 makes body 1 at (12.4876, 9.7511, 33.3333) makes body 2 at (38.4876, 9.7511, 33.3333) makes body 3 at (18.3831, -30.3269, 33.3333) makes body 4 at (58.3831, -30.3269, 33.3333)
hidden bodies 1 2 4
equation "d7 = 10 mm - 3.1 mm"
equation "d14 = 10 mm - 3.6 mm"
